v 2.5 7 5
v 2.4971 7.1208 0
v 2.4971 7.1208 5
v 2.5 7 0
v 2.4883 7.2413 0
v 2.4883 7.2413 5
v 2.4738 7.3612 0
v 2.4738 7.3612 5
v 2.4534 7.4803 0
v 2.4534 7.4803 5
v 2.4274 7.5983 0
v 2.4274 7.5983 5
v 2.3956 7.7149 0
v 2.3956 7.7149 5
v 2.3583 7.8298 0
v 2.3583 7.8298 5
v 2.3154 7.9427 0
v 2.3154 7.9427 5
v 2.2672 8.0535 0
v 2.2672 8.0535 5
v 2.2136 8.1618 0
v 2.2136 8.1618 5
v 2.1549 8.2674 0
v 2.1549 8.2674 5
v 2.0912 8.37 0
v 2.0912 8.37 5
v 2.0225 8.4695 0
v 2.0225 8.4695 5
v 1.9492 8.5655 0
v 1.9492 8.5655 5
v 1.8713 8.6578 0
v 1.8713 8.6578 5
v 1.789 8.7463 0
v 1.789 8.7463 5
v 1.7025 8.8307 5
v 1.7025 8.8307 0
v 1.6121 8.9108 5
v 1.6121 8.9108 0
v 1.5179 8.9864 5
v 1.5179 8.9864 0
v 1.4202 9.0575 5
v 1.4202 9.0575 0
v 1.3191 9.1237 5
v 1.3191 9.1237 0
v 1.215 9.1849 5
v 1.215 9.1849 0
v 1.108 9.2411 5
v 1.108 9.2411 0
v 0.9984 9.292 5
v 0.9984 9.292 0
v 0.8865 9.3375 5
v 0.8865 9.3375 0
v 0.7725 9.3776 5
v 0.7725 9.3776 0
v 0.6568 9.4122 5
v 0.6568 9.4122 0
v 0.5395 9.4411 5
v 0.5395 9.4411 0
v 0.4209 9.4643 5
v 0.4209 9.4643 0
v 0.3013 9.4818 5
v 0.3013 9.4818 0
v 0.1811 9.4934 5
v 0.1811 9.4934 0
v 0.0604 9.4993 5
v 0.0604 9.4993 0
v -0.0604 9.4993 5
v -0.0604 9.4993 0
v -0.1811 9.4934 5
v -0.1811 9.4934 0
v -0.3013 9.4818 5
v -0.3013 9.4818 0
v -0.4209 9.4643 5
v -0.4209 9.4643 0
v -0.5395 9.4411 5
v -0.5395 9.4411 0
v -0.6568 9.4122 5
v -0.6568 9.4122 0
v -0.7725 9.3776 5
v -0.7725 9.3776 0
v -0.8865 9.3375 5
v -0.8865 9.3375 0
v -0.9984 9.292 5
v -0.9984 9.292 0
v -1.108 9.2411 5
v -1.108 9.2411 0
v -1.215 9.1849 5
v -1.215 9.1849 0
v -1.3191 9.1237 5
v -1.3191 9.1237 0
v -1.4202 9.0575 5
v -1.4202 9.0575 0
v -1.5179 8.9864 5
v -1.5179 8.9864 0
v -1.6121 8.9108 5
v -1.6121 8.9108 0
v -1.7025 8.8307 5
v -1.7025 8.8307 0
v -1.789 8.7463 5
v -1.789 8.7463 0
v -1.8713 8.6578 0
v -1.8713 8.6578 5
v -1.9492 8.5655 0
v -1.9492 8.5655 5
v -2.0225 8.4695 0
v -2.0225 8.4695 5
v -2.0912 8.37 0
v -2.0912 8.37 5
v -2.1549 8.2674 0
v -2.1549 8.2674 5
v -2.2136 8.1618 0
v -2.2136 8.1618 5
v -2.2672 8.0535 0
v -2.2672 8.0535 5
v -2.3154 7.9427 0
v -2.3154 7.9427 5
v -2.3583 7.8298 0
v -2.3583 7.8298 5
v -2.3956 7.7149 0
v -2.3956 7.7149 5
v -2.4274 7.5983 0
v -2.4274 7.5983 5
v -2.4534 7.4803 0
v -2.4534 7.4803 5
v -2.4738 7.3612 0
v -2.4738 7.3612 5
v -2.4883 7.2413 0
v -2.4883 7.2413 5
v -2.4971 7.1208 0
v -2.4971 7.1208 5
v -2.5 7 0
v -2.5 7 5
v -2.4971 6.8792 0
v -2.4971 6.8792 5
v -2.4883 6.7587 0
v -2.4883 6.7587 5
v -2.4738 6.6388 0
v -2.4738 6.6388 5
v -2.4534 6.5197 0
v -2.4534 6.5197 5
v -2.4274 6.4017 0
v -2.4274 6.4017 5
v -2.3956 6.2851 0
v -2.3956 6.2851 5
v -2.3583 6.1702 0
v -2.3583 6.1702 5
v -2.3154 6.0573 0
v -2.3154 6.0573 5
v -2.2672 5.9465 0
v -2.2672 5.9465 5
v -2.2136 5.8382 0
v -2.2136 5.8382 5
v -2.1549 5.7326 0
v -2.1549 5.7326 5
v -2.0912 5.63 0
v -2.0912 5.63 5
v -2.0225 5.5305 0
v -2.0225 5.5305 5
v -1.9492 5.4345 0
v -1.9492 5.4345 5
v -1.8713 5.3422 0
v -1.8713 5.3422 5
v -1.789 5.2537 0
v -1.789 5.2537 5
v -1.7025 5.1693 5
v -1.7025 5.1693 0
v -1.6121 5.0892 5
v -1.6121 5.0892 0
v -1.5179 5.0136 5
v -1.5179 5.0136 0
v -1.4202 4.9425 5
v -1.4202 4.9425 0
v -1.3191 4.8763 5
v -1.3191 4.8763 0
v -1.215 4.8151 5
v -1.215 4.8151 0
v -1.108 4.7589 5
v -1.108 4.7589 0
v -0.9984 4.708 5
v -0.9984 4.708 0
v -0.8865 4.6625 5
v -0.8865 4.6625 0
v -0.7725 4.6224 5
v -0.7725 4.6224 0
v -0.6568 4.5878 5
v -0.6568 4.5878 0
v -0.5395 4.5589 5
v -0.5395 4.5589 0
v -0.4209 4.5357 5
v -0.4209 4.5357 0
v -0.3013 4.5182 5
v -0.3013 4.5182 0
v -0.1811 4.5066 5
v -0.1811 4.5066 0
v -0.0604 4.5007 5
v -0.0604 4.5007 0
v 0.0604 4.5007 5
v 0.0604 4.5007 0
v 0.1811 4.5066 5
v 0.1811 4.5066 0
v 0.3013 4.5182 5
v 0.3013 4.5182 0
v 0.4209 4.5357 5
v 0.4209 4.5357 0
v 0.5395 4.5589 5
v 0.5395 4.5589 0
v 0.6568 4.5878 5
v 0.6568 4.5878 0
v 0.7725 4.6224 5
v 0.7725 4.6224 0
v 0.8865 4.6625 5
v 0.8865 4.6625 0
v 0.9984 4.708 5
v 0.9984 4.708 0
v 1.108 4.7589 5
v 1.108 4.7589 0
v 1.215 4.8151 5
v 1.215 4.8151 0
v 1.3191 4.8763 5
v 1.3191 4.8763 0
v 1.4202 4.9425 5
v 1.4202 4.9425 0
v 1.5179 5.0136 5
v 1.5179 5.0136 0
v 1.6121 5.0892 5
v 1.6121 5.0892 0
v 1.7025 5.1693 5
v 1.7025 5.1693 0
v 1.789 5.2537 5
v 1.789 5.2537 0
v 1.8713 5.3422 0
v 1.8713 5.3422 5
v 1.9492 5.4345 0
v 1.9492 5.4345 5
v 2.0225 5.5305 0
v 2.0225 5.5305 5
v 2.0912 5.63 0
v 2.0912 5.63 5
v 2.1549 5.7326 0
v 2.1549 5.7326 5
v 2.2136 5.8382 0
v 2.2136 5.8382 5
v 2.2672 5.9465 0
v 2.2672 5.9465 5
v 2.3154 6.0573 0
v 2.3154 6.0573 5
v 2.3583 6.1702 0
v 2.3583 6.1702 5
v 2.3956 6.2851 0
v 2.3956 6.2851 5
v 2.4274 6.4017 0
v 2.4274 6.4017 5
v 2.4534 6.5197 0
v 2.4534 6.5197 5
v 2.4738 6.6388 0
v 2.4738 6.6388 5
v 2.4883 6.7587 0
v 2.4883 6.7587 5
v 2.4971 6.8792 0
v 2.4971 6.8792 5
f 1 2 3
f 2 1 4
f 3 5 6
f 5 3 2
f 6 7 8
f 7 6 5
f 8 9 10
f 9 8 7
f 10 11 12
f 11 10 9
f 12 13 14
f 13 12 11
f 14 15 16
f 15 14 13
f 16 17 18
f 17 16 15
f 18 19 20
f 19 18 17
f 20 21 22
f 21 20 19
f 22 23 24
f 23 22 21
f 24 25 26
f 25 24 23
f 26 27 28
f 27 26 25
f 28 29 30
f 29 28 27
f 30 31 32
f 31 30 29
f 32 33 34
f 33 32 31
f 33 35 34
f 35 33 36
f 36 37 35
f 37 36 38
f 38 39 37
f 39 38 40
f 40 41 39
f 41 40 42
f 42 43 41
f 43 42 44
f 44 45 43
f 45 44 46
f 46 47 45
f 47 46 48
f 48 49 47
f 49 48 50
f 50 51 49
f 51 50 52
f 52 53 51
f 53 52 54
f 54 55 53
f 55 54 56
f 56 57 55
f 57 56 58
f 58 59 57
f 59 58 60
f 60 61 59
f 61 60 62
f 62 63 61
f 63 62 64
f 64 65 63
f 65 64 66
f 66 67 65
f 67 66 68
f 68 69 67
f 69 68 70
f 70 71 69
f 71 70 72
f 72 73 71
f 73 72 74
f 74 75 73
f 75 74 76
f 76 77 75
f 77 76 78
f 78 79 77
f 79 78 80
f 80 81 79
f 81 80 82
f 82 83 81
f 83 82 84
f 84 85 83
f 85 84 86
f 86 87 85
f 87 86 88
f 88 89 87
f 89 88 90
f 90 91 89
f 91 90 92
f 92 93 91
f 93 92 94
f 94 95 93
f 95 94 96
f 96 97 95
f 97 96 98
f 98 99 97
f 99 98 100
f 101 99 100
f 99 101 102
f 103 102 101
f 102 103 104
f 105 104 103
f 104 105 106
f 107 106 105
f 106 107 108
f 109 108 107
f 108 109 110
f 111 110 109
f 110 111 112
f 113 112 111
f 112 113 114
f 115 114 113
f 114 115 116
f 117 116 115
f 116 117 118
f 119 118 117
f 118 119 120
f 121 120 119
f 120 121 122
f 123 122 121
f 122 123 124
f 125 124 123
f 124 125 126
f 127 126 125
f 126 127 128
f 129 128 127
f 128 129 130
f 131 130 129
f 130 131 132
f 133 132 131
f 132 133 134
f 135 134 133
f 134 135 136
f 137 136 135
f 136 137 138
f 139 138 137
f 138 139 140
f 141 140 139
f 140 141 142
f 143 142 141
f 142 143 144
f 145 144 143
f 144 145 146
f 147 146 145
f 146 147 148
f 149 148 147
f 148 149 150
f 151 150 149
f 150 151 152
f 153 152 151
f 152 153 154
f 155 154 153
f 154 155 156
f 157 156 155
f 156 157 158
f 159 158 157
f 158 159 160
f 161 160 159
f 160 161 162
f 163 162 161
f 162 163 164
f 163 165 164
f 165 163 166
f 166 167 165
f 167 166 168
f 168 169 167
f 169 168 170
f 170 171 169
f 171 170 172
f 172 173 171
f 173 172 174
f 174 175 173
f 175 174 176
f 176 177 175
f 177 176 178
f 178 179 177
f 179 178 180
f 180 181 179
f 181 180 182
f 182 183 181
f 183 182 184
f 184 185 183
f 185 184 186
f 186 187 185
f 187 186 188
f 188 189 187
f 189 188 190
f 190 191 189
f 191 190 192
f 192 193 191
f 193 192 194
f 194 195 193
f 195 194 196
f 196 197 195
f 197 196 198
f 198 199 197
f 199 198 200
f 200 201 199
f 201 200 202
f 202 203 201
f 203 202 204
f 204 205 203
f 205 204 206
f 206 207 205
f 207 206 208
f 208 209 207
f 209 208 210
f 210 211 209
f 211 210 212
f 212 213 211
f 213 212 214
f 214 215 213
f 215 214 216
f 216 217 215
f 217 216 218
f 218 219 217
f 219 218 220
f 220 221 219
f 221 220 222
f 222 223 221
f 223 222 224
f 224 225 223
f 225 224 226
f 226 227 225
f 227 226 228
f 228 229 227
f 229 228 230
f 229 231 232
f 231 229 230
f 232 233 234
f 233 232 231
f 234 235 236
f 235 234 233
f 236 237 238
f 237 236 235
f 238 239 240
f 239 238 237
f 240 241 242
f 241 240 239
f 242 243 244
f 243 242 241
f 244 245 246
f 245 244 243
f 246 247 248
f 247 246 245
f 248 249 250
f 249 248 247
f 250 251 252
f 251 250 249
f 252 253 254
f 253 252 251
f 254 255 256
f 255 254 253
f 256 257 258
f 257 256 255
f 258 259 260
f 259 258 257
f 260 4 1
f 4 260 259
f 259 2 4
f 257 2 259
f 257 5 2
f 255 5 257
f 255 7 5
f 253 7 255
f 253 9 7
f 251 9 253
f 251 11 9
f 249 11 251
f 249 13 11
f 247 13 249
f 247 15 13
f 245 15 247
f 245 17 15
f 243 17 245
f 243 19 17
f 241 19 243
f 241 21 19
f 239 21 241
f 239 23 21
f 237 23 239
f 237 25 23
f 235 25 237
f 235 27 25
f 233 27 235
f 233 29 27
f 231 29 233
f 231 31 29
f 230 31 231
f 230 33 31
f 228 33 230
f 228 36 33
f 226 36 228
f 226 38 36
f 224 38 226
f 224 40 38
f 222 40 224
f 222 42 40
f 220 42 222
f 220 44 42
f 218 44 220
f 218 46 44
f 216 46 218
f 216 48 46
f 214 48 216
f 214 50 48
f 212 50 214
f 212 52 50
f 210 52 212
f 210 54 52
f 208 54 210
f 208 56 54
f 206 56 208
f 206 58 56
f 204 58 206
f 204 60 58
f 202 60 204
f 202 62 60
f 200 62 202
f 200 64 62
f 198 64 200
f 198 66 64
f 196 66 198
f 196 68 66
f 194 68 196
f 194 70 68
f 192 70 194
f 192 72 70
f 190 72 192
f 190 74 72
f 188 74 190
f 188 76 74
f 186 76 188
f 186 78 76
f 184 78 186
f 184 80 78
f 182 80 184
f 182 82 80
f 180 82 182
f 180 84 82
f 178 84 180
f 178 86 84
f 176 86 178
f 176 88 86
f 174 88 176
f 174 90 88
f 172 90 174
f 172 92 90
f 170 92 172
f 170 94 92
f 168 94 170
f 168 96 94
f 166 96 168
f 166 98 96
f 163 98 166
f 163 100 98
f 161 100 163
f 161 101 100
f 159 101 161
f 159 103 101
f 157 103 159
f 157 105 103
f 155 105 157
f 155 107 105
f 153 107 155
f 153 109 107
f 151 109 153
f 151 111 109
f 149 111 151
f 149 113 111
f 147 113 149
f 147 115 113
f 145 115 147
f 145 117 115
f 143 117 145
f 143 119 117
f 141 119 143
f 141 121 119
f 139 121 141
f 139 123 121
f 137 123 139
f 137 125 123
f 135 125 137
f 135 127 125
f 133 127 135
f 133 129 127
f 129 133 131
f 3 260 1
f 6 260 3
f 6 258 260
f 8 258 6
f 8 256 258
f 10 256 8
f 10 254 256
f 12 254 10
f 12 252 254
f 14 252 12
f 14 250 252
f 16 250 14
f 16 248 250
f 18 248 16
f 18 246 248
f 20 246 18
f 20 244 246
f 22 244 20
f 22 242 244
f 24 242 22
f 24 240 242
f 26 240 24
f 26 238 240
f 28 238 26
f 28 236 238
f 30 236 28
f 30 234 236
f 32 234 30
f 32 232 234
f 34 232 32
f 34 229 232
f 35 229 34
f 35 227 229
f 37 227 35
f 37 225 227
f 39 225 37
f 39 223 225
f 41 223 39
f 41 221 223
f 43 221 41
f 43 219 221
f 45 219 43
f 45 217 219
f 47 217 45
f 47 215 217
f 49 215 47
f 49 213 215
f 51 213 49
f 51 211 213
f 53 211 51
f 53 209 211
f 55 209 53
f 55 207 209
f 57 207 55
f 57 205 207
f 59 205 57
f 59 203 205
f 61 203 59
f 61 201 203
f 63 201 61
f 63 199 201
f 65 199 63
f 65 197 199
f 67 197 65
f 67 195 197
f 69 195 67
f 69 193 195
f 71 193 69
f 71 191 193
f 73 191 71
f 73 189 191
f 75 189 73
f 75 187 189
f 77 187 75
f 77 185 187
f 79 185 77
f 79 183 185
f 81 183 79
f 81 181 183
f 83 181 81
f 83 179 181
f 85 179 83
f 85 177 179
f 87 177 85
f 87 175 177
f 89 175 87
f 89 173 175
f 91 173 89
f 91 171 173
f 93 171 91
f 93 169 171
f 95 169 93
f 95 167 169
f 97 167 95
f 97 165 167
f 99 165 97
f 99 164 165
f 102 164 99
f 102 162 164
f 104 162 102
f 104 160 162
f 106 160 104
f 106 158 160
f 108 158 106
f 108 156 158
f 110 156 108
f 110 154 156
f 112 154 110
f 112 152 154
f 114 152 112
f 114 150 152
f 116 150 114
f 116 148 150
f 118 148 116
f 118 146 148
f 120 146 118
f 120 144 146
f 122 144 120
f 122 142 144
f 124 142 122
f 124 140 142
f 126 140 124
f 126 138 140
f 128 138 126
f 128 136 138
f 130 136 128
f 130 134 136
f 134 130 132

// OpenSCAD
$fn=130;



//Solo
translate([0,7,0])
cylinder (h=5, d=5);
